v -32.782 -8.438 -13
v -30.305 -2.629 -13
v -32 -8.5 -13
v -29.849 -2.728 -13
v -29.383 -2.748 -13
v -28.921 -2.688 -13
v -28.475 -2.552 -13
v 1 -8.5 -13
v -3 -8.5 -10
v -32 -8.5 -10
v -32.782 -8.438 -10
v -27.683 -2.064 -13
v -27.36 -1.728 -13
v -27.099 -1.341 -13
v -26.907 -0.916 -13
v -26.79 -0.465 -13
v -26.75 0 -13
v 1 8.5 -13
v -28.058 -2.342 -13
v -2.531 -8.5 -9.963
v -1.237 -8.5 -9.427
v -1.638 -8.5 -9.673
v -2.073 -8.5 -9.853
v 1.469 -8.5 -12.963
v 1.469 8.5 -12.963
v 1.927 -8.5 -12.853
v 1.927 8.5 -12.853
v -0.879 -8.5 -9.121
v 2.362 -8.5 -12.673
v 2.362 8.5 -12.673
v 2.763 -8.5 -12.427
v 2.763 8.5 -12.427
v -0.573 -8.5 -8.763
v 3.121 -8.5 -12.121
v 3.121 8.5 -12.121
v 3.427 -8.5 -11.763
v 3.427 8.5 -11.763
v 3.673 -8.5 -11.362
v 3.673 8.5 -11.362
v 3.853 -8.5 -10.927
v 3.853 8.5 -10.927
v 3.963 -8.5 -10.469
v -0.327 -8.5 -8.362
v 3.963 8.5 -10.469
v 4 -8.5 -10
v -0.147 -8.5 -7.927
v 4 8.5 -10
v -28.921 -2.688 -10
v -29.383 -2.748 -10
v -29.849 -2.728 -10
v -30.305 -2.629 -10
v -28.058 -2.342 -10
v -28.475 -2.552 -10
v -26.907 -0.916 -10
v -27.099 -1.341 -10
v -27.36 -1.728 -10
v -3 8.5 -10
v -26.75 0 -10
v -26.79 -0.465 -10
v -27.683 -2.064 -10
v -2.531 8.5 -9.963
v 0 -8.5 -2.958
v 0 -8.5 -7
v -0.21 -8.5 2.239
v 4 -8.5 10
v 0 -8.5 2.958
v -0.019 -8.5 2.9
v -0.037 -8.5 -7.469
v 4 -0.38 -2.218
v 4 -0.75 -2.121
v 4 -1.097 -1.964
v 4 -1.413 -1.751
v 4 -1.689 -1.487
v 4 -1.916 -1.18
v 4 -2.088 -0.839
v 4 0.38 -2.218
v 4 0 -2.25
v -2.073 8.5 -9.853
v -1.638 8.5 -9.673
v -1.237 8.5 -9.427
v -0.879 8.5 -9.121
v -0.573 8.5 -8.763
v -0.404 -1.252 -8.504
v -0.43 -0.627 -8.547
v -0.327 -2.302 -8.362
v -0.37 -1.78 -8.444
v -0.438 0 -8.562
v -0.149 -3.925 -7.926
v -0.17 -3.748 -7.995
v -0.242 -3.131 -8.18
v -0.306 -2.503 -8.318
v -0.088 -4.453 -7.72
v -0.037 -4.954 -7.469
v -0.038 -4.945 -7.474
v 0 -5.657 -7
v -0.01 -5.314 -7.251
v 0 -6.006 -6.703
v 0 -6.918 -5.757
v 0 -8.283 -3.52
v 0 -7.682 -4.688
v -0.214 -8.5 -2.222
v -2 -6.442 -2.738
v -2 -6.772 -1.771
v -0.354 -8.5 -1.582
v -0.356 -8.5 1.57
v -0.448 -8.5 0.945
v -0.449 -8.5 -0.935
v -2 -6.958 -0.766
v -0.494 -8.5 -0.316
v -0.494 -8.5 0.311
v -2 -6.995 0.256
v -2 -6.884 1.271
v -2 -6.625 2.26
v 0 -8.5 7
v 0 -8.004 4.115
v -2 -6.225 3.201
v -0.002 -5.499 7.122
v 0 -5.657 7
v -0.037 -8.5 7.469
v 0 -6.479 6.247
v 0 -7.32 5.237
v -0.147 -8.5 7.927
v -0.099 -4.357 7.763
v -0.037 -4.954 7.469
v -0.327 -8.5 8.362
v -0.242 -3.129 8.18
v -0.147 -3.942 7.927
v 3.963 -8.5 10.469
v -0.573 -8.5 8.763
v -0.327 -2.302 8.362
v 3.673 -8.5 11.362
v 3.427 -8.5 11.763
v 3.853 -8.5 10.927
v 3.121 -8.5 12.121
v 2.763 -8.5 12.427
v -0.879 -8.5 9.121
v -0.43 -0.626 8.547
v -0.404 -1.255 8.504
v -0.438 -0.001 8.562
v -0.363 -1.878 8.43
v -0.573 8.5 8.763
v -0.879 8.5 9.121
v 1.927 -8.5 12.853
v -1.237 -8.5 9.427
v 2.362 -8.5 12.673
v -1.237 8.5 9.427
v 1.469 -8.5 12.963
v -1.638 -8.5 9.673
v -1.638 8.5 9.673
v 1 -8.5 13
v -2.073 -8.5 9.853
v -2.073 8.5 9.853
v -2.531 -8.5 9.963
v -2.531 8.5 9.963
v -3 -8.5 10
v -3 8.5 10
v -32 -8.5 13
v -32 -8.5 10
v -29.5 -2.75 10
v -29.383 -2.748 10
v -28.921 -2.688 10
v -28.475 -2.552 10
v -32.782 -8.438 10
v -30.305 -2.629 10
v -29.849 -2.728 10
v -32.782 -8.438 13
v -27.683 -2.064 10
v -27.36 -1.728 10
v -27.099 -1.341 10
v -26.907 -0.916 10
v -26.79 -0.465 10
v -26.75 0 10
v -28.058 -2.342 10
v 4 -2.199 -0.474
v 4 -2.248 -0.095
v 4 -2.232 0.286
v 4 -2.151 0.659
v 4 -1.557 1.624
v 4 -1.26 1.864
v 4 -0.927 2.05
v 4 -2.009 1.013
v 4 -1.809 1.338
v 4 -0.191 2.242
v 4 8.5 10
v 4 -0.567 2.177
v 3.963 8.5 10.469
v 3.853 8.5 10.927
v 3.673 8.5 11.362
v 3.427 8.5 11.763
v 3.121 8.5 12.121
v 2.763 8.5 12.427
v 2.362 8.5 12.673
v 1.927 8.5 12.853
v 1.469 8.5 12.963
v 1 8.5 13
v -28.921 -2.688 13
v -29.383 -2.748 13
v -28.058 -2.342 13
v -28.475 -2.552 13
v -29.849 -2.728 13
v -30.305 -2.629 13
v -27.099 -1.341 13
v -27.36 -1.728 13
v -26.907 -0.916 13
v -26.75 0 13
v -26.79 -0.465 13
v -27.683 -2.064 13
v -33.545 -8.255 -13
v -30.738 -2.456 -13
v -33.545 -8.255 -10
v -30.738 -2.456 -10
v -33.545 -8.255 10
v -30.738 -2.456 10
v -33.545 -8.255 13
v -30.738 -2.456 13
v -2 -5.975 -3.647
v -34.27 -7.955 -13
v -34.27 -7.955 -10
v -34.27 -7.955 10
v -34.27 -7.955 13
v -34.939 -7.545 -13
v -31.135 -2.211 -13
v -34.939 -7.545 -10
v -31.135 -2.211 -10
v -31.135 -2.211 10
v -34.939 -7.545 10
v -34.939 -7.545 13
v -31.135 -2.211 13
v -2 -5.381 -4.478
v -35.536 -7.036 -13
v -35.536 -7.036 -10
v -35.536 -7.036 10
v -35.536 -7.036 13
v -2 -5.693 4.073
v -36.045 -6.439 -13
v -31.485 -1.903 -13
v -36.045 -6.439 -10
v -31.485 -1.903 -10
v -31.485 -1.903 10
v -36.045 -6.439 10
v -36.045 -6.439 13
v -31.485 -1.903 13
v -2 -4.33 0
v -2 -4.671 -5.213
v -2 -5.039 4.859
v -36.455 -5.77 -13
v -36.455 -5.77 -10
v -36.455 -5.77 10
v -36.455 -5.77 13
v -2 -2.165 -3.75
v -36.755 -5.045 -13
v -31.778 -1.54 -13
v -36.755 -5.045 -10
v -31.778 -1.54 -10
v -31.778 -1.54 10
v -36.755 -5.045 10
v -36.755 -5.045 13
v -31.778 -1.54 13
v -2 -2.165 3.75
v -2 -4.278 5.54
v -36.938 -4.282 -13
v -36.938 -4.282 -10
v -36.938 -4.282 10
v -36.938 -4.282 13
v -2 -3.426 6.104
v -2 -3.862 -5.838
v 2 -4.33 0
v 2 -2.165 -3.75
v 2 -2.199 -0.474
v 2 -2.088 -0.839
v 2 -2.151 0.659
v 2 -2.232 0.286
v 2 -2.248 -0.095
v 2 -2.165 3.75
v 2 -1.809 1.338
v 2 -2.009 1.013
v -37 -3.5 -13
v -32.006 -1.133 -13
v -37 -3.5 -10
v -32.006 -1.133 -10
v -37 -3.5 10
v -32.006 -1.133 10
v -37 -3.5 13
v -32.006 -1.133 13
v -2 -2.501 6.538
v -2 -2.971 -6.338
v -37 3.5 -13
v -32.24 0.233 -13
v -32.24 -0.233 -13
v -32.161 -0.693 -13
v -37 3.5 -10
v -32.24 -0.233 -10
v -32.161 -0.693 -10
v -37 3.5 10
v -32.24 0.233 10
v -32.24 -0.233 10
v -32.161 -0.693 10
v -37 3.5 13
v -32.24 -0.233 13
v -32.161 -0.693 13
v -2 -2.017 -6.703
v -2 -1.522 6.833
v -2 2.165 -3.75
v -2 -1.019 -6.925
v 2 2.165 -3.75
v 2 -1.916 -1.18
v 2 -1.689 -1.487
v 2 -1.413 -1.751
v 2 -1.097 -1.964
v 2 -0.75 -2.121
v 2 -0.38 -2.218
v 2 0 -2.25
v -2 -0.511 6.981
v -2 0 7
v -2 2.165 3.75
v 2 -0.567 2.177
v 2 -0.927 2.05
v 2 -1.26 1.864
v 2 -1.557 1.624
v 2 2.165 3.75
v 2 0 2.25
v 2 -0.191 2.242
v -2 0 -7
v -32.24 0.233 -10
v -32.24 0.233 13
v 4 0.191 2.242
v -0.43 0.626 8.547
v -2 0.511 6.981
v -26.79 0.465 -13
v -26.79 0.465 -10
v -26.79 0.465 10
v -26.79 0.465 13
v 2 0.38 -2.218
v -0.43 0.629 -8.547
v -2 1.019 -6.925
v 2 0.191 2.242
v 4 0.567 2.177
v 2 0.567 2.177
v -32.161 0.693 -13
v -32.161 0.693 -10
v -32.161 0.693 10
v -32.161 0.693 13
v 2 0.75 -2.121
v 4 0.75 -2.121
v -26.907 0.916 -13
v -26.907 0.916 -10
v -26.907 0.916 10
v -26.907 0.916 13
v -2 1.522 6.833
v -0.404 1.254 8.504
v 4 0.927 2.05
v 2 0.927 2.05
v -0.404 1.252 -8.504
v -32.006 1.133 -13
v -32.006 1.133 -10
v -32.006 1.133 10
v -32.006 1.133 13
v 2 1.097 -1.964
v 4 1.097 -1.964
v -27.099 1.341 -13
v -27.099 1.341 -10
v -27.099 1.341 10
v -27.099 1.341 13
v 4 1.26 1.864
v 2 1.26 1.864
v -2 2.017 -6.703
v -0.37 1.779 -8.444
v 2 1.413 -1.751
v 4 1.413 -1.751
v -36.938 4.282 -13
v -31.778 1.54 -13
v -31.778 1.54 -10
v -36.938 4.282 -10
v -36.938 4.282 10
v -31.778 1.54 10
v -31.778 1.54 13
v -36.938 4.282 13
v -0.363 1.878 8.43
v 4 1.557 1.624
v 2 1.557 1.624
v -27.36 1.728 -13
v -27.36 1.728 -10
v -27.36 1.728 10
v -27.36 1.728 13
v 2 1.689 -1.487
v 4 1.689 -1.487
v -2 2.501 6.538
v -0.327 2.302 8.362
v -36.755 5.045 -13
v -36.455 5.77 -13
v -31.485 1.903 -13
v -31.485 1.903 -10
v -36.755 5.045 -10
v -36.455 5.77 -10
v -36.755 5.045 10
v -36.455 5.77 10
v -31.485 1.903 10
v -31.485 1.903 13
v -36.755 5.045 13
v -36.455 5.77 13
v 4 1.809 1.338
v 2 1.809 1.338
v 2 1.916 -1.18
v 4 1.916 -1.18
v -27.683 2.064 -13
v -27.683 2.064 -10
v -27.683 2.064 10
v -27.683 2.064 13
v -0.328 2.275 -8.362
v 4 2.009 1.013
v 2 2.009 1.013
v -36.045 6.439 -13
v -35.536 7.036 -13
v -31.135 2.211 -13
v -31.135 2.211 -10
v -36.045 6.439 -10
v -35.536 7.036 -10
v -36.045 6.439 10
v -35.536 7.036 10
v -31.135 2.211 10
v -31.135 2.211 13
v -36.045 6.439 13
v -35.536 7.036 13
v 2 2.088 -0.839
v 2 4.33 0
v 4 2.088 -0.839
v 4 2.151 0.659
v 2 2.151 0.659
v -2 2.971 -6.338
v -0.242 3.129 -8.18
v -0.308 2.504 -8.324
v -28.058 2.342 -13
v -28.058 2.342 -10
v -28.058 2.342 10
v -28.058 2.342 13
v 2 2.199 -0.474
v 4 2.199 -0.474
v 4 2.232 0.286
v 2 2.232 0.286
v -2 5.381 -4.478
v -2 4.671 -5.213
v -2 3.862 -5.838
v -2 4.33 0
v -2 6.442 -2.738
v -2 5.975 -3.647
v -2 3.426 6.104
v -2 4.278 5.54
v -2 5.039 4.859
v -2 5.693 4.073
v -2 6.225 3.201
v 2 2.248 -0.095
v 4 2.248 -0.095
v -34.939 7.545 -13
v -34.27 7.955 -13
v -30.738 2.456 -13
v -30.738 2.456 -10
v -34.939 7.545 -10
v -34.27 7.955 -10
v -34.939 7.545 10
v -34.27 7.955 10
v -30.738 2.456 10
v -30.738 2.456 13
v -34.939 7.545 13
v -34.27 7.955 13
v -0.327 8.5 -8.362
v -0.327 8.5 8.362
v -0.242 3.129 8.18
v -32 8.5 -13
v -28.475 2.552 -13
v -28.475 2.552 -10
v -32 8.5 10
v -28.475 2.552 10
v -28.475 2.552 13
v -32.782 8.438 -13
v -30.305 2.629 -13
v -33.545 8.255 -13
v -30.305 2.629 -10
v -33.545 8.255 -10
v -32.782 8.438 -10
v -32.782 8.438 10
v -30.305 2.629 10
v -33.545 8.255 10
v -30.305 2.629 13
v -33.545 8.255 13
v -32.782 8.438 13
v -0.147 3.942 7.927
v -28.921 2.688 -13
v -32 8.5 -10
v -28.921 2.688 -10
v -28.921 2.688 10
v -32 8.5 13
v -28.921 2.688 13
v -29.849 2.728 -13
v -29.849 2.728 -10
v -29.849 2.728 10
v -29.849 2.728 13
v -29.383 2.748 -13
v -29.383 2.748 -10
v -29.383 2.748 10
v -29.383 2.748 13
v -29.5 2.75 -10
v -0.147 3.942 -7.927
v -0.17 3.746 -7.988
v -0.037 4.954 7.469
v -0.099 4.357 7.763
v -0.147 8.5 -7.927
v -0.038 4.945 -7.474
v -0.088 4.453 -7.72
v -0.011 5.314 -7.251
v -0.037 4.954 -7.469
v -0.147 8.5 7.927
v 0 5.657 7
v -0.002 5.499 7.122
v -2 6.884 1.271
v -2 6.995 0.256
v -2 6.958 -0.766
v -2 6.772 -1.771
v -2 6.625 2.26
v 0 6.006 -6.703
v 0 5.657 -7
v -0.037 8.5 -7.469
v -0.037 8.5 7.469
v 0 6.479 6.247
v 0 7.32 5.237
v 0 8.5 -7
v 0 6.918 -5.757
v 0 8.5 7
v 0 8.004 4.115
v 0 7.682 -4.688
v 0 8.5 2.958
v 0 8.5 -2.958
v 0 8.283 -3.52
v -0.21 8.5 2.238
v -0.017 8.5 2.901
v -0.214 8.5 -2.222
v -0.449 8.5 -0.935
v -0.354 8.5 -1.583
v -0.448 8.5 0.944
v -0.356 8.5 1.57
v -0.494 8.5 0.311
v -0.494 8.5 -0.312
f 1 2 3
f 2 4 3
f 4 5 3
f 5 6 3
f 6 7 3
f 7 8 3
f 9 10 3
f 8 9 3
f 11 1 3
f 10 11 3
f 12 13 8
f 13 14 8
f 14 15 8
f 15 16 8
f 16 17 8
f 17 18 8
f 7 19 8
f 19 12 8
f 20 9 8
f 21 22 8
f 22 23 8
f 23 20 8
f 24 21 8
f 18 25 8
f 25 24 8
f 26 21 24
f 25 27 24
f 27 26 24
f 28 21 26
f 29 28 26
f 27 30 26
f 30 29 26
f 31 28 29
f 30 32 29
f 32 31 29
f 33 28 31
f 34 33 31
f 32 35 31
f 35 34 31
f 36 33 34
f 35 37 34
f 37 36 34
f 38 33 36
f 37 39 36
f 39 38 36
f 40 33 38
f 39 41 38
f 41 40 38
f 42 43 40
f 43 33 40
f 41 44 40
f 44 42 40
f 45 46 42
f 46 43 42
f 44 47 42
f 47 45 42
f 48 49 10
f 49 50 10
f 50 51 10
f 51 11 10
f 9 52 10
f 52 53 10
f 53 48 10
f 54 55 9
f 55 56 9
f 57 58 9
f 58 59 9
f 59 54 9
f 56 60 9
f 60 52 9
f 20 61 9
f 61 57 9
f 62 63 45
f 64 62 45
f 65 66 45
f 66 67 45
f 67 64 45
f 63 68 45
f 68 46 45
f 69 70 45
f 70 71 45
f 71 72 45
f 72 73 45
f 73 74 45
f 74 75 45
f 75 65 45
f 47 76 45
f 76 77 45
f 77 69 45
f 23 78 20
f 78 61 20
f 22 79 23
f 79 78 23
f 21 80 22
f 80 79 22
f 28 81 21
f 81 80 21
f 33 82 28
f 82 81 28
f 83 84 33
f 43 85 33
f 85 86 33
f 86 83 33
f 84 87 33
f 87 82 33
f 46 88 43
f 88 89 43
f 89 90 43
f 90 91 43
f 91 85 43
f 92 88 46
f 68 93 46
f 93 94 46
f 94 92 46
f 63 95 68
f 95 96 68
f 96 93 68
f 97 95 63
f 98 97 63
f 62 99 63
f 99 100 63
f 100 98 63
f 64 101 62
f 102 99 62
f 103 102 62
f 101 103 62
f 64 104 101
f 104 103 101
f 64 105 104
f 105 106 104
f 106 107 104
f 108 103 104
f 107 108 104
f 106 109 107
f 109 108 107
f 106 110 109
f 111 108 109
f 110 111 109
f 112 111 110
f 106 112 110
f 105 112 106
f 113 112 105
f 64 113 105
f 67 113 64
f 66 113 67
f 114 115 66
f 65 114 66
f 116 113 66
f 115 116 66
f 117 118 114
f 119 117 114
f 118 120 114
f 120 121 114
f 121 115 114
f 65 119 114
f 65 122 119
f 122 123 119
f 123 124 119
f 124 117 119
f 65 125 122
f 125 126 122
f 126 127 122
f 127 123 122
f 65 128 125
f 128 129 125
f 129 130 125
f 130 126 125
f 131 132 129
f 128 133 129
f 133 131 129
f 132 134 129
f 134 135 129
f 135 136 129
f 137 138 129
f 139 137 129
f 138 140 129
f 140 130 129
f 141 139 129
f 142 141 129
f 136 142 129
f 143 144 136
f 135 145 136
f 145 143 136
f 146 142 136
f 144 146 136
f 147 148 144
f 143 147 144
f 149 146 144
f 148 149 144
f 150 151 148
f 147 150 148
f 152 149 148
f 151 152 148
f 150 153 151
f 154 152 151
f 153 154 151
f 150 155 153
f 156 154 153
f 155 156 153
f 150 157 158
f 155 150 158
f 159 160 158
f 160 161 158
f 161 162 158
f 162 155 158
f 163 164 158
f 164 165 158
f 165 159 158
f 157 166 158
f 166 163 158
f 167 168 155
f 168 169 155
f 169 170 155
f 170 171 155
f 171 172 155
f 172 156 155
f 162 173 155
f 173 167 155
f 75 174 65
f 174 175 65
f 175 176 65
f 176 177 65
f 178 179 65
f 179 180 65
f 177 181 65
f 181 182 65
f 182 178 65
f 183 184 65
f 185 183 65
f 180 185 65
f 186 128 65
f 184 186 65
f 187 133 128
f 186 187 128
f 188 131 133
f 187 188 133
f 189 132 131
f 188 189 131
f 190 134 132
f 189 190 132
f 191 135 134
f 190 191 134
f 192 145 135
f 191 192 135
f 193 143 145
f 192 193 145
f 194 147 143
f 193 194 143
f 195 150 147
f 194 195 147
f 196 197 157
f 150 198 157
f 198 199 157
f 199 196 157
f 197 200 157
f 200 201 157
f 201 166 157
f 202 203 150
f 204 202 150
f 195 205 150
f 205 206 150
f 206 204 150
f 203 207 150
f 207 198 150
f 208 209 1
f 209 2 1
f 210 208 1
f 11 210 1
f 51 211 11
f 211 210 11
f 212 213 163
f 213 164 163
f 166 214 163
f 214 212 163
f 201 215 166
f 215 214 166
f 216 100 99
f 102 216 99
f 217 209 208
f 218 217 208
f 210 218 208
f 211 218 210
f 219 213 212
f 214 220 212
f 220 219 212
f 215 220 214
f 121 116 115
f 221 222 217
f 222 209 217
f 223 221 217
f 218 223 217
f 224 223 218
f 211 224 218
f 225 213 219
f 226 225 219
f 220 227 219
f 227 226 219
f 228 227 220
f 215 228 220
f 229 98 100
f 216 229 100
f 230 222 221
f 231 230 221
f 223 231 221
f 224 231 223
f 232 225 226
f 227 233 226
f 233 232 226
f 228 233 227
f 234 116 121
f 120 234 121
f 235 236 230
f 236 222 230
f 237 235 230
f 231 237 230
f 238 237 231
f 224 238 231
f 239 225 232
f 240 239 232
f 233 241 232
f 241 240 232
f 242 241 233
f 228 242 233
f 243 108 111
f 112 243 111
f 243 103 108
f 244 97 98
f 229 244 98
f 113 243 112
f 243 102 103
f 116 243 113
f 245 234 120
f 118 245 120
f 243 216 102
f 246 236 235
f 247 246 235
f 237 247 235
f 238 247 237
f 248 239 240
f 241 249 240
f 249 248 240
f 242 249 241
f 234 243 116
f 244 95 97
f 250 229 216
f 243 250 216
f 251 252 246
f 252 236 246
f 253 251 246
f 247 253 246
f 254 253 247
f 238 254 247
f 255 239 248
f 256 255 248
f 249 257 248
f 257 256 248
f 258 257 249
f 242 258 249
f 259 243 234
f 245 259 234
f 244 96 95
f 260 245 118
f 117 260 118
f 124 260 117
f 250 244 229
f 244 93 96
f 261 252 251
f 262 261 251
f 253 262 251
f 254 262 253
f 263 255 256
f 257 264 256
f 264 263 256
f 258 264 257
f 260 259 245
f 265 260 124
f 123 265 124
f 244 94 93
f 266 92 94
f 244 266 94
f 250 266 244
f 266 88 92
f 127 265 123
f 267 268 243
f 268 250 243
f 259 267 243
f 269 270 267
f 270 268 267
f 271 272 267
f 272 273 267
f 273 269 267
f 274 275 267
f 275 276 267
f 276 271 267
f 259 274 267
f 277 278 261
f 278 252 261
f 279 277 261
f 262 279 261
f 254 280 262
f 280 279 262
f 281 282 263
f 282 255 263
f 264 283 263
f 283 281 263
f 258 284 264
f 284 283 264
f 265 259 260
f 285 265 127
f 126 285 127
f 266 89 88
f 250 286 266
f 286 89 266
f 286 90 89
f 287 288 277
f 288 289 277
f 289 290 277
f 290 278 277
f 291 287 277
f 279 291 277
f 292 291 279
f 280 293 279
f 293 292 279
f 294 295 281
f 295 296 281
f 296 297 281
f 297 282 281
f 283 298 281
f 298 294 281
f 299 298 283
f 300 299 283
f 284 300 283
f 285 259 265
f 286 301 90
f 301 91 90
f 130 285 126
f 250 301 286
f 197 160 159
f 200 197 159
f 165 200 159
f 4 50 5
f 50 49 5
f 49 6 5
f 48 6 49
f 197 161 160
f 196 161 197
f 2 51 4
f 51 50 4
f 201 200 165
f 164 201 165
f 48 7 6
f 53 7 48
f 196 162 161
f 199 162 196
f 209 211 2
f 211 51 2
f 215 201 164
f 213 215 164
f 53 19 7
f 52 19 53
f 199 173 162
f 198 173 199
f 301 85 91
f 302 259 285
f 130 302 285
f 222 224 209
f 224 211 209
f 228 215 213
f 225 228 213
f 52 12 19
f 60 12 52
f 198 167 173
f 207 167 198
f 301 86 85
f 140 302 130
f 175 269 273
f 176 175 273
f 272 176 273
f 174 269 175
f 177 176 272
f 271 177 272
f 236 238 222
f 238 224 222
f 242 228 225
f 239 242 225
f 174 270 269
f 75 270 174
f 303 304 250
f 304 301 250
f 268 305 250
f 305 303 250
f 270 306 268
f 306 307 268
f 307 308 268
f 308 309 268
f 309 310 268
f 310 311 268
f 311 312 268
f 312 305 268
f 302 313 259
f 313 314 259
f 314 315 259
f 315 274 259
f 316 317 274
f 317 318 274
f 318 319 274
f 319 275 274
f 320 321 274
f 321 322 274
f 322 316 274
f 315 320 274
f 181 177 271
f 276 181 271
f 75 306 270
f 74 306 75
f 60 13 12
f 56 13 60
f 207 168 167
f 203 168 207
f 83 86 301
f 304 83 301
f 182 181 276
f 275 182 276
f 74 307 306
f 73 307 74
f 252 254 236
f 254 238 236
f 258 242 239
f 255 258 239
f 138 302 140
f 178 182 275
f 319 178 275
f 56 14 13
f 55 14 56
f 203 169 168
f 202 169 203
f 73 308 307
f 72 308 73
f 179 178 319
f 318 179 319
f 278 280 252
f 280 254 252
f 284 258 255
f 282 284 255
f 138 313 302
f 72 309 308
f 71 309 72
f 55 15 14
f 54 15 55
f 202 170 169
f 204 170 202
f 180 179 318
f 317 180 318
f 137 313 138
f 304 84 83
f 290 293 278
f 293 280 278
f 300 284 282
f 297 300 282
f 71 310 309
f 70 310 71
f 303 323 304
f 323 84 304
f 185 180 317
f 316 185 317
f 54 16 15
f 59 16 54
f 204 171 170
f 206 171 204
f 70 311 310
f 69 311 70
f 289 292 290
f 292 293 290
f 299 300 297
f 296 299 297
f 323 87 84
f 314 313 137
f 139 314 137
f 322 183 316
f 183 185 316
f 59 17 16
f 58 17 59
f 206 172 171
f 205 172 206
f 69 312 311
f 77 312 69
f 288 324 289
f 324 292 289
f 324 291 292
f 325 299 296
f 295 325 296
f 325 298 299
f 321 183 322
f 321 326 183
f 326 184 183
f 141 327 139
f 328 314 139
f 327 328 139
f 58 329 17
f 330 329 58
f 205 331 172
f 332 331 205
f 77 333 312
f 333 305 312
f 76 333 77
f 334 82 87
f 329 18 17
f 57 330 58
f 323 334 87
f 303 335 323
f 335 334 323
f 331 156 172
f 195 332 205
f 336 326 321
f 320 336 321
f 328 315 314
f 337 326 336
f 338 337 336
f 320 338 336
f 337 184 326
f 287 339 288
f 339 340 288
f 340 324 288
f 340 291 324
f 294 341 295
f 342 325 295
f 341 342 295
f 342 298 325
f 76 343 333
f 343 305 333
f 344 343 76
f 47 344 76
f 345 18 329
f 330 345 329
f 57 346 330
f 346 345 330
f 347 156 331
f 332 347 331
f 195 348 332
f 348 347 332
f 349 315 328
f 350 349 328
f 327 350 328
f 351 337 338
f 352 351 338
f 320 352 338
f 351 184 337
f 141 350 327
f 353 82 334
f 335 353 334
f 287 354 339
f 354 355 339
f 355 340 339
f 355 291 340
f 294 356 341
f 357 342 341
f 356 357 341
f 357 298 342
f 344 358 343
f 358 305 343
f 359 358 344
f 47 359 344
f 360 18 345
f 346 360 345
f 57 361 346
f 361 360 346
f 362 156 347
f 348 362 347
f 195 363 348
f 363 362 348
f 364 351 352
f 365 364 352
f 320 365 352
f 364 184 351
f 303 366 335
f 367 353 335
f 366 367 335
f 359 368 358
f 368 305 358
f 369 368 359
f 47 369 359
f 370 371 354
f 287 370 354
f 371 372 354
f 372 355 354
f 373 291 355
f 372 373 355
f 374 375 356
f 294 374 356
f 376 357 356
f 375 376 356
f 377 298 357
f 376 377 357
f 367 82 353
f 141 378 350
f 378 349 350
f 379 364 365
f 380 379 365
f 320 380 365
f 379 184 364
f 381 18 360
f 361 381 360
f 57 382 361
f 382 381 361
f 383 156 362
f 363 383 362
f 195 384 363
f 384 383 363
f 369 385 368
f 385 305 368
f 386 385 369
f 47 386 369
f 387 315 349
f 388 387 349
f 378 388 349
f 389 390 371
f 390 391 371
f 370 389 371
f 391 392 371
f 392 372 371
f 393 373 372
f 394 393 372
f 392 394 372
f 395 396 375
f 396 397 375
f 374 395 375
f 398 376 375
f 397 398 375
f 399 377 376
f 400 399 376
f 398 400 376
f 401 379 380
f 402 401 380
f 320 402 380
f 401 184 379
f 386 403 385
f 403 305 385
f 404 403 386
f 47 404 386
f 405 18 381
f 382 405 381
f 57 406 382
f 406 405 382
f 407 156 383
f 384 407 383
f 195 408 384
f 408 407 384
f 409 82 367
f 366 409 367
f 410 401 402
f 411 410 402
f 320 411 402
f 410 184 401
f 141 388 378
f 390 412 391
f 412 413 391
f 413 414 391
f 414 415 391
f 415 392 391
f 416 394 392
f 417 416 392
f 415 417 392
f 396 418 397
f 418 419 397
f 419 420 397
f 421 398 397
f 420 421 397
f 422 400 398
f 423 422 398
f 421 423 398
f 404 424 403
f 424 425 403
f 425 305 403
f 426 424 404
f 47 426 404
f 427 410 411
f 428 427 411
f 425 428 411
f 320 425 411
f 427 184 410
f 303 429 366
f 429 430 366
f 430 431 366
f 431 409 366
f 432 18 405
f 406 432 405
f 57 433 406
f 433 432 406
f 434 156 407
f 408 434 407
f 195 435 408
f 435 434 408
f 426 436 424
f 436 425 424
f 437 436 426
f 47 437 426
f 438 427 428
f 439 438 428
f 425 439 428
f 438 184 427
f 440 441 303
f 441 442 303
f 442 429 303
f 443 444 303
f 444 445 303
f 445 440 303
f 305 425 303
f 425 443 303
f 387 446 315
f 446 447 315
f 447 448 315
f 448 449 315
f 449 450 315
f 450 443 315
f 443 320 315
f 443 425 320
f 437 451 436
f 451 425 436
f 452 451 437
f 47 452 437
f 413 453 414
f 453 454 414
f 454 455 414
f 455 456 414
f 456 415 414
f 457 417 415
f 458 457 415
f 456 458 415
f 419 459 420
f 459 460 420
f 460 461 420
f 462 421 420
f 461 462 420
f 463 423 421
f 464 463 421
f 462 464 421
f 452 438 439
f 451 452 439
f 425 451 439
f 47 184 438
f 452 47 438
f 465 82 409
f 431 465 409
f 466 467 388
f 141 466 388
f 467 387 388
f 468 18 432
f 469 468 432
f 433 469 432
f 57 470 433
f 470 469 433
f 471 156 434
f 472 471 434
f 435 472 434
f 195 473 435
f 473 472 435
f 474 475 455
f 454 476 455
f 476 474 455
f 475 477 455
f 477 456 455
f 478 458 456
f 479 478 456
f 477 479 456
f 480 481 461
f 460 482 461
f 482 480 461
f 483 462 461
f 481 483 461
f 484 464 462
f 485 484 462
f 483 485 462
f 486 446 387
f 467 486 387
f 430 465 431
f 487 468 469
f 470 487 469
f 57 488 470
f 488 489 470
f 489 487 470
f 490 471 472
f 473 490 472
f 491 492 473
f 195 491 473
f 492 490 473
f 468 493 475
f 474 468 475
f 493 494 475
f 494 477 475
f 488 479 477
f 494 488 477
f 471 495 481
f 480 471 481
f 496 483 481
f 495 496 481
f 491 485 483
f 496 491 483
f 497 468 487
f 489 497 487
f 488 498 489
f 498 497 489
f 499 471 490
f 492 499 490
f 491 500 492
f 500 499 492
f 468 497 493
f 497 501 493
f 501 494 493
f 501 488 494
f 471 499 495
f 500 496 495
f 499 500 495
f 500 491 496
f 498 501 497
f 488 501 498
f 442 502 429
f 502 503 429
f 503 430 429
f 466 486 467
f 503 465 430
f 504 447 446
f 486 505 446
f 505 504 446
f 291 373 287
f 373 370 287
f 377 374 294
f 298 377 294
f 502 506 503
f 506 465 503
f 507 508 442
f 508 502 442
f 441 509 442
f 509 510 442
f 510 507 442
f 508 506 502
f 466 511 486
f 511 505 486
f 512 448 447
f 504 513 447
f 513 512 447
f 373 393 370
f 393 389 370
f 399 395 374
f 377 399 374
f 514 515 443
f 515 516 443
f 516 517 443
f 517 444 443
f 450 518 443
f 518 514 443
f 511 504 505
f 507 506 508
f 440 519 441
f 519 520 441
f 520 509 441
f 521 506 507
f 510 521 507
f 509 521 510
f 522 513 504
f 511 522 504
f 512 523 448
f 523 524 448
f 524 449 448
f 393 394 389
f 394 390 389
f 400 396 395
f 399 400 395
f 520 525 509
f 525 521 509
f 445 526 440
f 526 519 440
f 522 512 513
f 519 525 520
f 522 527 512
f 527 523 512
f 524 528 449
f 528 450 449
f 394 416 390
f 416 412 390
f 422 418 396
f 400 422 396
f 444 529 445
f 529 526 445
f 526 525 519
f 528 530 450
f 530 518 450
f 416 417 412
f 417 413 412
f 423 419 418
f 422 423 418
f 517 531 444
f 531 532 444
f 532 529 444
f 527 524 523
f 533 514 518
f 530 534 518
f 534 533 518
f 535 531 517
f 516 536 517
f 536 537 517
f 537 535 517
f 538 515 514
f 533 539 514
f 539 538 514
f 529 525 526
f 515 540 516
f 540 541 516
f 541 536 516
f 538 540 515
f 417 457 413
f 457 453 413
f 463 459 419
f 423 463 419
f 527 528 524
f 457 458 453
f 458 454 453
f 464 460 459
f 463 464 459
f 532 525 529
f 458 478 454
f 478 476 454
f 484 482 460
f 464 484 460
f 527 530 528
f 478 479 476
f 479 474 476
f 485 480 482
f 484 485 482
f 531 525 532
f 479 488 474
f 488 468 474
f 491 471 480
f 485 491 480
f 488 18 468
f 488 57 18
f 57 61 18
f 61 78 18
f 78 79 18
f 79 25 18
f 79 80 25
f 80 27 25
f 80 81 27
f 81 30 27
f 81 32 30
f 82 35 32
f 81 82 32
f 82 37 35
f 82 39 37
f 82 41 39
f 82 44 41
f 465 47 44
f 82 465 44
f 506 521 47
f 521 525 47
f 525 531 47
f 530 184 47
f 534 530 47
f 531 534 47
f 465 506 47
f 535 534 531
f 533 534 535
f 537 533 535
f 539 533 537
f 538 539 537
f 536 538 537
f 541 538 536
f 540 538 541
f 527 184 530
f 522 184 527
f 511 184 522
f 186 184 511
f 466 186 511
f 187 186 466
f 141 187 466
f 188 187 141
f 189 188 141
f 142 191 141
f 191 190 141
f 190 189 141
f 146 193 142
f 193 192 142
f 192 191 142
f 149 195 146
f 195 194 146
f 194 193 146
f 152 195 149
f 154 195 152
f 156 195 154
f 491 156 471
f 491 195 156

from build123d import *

# Parameters (mm, degrees)
SKETCH1_W           = 26
SKETCH1_H           = 17
BOSS_EXTRUDE1_DEPTH = 4
SKETCH2_W           = 3
SKETCH2_H           = 17
BOSS_EXTRUDE2_DEPTH = 37
SKETCH3_R           = 2.75
CUT_EXTRUDE1_DEPTH  = 47.013584951
FILLET1_R           = 3
FILLET2_R           = 5
SKETCH5_R           = 7
BOSS_EXTRUDE3_DEPTH = 2
CUT_EXTRUDE3_REACH  = 45.843
SKETCH7_R           = 2.25
CUT_EXTRUDE4_DEPTH  = 4
CHAMFER1_SIZE       = 2


with BuildPart() as part:
    # Sketch1 → Boss-Extrude1 (new body)
    with BuildSketch(Plane(origin=(0, 0, 0), x_dir=(0, 0, -1), z_dir=(1, 0, 0))):
        Rectangle(SKETCH1_W, SKETCH1_H)
    extrude(amount=BOSS_EXTRUDE1_DEPTH)

    # Sketch2 → Boss-Extrude2 (add)
    with BuildSketch(Plane.ZY):
        with Locations((-11.5, 0)):
            Rectangle(SKETCH2_W, SKETCH2_H)
        with Locations((11.5, 0)):
            Rectangle(SKETCH2_W, SKETCH2_H)
    extrude(amount=BOSS_EXTRUDE2_DEPTH)

    # Sketch3 → Cut-Extrude1 (cut, through all)
    with BuildSketch(Plane.XY.offset(13)):
        with Locations((-29.5, 0)):
            Circle(SKETCH3_R)
    extrude(amount=-CUT_EXTRUDE1_DEPTH, mode=Mode.SUBTRACT)

    # Fillet1
    fillet1_edges = [part.edges().sort_by_distance(p)[0] for p in [
        (4, 0, 13),
        (0, 0, -10),
        (0, 0, 10),
        (4, 0, -13),
    ]]
    fillet(fillet1_edges, radius=FILLET1_R)

    # Fillet2
    fillet2_edges = [part.edges().sort_by_distance(p)[0] for p in [
        (-37, -8.5, -11.5),
        (-37, 8.5, -11.5),
        (-37, 8.5, 11.5),
        (-37, -8.5, 11.5),
    ]]
    fillet(fillet2_edges, radius=FILLET2_R)

    # Sketch5 → Boss-Extrude3 (add)
    with BuildSketch(Plane.ZY):
        Circle(SKETCH5_R)
    extrude(amount=BOSS_EXTRUDE3_DEPTH)

    # Sketch7 → Cut-Extrude3 (cut, up to next)
    with BuildSketch(Plane(origin=(4, 0, 0), x_dir=(0, 0, -1), z_dir=(1, 0, 0)), mode=Mode.PRIVATE) as cut_extrude3_sk1:
        Circle(SKETCH7_R)
    cut_extrude3_tool1 = extrude(cut_extrude3_sk1.sketch, amount=-CUT_EXTRUDE3_REACH, mode=Mode.PRIVATE) & part.part
    add(cut_extrude3_tool1.solids().sort_by_distance((4, 0, 0))[0], mode=Mode.SUBTRACT)

    # Sketch8 → Cut-Extrude4 (cut)
    with BuildSketch(Plane.ZY.offset(2)):
        Polygon((0, 4.330127019), (-3.75, 2.165063509), (-3.75, -2.165063509), (0, -4.330127019), (3.75, -2.165063509), (3.75, 2.165063509), align=None)
    extrude(amount=-CUT_EXTRUDE4_DEPTH, mode=Mode.SUBTRACT)

    # Chamfer1
    # the kernel refuses this chamfer: 2 mm, written as the material it adds along each edge
    with BuildSketch(Plane(origin=(0, 0, 0), x_dir=(0, 0, 1), z_dir=(0, -1, 0))) as chamfer1_piece_1_section:
        Polygon((7 + CHAMFER1_SIZE, 0), (7, CHAMFER1_SIZE), (7, 0), align=None)
    chamfer1_piece_1 = revolve(axis=Axis((0, 0, 0), (-1, 0, 0)), revolution_arc=180, mode=Mode.PRIVATE)
    chamfer1_piece_1 = split(chamfer1_piece_1, bisect_by=Plane(origin=(-0.945270908, 8.5, 0), z_dir=(0, -1, 0)), keep=Keep.TOP, mode=Mode.PRIVATE)
    chamfer1_piece_1 = split(chamfer1_piece_1, bisect_by=Plane(origin=(-2, 8.001839451, 0), z_dir=(1, 0, 0)), keep=Keep.TOP, mode=Mode.PRIVATE)
    add(chamfer1_piece_1)
    with BuildSketch(Plane(origin=(0, 0, 0), x_dir=(0, 0, -1), z_dir=(0, 1, 0))) as chamfer1_piece_2_section:
        Polygon((7 + CHAMFER1_SIZE, 0), (7, CHAMFER1_SIZE), (7, 0), align=None)
    chamfer1_piece_2 = revolve(axis=Axis((0, 0, 0), (-1, 0, 0)), revolution_arc=180, mode=Mode.PRIVATE)
    chamfer1_piece_2 = split(chamfer1_piece_2, bisect_by=Plane(origin=(-0.945270905, -8.5, 0), z_dir=(0, 1, 0)), keep=Keep.TOP, mode=Mode.PRIVATE)
    chamfer1_piece_2 = split(chamfer1_piece_2, bisect_by=Plane(origin=(-2, -8.001839447, 0), z_dir=(1, 0, 0)), keep=Keep.TOP, mode=Mode.PRIVATE)
    add(chamfer1_piece_2)


solid = part.part
